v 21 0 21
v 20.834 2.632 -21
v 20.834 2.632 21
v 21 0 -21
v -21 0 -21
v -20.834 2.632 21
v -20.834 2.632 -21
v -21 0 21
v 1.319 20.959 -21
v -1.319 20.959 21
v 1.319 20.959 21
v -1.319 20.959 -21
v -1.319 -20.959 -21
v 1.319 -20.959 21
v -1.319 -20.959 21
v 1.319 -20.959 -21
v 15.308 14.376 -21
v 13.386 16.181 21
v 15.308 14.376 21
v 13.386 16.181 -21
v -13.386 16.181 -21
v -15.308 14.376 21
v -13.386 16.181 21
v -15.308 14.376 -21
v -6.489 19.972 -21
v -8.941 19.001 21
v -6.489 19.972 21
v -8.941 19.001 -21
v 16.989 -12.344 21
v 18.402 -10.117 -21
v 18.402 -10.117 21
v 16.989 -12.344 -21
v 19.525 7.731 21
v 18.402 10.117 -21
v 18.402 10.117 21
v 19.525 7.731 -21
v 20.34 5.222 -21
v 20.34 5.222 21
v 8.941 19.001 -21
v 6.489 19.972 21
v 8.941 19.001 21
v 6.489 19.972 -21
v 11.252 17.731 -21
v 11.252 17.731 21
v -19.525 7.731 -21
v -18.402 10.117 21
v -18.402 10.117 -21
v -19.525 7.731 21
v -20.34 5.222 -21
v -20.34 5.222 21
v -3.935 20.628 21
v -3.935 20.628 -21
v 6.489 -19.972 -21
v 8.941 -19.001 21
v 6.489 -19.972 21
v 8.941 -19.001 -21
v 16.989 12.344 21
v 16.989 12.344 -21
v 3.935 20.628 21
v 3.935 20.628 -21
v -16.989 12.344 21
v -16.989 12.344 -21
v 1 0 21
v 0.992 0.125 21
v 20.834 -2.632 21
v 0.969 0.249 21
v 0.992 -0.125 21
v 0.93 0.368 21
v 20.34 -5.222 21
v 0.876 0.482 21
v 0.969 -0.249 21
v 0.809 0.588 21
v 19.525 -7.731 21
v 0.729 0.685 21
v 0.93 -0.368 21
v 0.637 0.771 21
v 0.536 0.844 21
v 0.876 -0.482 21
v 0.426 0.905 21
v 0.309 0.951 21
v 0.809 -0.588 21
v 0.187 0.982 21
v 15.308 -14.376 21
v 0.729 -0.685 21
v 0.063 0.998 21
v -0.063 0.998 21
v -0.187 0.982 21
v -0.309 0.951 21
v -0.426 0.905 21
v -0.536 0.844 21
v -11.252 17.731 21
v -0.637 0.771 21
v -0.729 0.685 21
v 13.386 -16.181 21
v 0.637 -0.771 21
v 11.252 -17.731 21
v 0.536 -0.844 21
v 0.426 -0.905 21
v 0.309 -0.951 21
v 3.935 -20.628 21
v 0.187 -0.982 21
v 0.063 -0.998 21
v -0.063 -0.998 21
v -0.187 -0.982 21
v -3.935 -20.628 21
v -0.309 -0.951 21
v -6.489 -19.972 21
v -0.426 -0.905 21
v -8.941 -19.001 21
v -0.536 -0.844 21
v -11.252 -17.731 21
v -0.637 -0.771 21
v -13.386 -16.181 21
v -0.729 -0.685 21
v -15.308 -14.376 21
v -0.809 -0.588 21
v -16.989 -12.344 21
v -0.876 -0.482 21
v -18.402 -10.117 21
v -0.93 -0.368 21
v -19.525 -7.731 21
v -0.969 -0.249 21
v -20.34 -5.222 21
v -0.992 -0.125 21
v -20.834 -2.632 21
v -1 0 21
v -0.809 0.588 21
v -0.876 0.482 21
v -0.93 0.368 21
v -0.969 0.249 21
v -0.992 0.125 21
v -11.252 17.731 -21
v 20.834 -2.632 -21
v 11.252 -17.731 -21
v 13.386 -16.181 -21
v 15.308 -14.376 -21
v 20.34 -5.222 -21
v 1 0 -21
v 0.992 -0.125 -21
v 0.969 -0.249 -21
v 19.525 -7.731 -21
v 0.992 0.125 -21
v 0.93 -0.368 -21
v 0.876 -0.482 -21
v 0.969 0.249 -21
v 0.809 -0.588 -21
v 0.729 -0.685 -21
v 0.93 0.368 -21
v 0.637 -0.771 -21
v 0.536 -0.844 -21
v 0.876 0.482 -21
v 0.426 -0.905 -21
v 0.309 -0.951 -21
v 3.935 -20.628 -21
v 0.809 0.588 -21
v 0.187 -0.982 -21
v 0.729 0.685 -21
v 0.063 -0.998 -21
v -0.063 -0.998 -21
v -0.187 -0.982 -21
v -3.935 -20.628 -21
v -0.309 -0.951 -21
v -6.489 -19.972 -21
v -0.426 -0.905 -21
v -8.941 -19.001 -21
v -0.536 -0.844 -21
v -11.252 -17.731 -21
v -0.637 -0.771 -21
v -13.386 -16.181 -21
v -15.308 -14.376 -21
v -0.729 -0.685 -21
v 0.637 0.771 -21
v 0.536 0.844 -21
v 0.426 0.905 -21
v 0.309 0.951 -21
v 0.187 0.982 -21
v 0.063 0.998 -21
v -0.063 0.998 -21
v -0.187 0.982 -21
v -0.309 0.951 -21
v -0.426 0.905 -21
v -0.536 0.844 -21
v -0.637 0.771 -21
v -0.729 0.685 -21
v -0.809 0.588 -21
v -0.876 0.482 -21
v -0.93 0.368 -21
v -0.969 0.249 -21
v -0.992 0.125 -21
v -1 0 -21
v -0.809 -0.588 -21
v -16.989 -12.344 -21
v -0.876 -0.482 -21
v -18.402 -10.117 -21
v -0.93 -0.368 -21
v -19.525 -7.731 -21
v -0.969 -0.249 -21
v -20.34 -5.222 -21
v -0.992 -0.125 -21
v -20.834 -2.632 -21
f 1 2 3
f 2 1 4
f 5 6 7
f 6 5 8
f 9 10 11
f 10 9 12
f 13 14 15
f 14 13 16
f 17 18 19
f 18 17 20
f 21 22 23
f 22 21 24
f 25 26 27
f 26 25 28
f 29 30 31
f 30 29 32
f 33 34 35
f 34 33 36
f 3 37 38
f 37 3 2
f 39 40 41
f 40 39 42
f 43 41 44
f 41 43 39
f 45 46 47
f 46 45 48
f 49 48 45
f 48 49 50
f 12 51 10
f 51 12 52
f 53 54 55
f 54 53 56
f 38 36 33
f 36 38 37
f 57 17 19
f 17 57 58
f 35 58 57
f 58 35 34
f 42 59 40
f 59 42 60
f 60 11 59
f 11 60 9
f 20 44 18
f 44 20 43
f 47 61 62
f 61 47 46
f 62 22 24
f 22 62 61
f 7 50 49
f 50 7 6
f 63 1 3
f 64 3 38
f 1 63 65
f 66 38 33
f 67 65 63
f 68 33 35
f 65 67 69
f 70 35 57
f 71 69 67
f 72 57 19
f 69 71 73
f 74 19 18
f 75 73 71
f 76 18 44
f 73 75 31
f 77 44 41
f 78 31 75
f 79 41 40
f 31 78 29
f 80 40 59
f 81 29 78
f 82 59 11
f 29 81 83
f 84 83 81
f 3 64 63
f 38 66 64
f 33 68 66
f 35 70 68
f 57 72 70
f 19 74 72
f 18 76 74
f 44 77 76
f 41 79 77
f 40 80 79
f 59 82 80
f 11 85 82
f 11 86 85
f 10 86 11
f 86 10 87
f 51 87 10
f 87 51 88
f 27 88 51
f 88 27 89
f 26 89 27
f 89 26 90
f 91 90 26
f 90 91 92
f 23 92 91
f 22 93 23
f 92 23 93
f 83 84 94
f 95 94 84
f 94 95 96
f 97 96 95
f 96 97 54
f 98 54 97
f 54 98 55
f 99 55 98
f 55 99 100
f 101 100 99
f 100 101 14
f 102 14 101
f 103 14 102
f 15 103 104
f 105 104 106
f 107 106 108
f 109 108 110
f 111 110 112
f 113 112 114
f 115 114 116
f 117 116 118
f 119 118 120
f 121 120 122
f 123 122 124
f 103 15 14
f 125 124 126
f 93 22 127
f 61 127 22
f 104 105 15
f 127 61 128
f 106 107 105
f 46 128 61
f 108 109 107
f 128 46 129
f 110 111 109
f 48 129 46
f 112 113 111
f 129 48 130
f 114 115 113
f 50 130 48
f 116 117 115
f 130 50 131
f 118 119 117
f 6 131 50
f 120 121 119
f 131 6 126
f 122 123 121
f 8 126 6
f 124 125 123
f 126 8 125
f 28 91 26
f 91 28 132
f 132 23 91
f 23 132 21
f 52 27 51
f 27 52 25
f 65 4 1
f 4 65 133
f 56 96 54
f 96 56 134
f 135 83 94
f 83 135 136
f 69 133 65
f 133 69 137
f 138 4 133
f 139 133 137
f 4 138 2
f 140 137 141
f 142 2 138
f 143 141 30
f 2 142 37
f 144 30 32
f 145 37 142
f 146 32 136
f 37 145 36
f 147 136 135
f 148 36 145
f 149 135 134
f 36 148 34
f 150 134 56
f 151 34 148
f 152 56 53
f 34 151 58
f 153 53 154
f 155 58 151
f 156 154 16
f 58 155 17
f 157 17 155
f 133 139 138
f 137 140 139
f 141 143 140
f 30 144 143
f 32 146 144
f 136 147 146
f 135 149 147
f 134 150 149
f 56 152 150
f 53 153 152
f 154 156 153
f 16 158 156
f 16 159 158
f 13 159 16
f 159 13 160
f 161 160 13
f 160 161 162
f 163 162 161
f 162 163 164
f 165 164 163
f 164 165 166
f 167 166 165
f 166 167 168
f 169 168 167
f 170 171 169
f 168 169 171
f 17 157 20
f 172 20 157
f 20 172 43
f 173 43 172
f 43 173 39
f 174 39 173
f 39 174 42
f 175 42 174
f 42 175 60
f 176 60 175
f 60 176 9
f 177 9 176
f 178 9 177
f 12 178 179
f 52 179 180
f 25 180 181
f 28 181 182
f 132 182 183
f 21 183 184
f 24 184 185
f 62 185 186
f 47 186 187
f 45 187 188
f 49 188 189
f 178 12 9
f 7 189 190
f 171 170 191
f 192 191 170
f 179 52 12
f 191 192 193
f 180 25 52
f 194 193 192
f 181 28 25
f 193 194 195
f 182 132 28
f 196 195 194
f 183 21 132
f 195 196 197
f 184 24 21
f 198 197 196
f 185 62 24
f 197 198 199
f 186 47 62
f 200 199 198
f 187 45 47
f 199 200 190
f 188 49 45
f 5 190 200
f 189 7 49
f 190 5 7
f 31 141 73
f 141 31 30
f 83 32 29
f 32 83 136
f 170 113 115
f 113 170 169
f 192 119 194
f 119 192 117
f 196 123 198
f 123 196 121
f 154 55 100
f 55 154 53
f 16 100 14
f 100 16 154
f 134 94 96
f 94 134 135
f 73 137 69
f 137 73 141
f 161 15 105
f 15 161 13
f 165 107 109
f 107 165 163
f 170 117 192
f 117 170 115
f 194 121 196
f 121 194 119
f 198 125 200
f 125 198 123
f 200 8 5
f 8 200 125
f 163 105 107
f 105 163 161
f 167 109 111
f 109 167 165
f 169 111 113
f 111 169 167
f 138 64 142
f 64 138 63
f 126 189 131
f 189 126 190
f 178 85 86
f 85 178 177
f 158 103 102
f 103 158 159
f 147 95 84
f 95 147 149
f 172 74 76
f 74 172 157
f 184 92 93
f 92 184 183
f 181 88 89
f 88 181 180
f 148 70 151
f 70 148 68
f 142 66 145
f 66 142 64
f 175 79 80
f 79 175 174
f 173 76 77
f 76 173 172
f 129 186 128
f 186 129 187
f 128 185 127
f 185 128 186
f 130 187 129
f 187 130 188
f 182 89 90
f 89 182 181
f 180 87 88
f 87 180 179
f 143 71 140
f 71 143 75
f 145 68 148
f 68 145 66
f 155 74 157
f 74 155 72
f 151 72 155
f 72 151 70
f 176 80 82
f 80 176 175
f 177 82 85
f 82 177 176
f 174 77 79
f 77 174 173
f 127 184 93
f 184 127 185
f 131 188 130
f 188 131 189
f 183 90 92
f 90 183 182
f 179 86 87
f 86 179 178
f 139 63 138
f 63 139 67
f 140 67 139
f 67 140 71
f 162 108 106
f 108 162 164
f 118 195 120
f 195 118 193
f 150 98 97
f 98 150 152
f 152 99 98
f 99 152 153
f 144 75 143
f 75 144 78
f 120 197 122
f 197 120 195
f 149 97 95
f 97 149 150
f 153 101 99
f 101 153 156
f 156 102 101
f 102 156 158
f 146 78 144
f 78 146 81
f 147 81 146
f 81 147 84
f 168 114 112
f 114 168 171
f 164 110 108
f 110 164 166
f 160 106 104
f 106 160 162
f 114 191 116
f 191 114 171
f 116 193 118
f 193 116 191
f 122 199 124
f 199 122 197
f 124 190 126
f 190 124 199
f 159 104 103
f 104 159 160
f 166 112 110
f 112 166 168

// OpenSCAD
$fn = 50;


difference() {
	union() {
		translate(v = [0, 0, -21.0000000000]) {
			cylinder(h = 42, r = 21.0000000000);
		}
	}
	union() {
		translate(v = [0, 0, -100.0000000000]) {
			cylinder(h = 200, r = 1.0000000000);
		}
	}
}
